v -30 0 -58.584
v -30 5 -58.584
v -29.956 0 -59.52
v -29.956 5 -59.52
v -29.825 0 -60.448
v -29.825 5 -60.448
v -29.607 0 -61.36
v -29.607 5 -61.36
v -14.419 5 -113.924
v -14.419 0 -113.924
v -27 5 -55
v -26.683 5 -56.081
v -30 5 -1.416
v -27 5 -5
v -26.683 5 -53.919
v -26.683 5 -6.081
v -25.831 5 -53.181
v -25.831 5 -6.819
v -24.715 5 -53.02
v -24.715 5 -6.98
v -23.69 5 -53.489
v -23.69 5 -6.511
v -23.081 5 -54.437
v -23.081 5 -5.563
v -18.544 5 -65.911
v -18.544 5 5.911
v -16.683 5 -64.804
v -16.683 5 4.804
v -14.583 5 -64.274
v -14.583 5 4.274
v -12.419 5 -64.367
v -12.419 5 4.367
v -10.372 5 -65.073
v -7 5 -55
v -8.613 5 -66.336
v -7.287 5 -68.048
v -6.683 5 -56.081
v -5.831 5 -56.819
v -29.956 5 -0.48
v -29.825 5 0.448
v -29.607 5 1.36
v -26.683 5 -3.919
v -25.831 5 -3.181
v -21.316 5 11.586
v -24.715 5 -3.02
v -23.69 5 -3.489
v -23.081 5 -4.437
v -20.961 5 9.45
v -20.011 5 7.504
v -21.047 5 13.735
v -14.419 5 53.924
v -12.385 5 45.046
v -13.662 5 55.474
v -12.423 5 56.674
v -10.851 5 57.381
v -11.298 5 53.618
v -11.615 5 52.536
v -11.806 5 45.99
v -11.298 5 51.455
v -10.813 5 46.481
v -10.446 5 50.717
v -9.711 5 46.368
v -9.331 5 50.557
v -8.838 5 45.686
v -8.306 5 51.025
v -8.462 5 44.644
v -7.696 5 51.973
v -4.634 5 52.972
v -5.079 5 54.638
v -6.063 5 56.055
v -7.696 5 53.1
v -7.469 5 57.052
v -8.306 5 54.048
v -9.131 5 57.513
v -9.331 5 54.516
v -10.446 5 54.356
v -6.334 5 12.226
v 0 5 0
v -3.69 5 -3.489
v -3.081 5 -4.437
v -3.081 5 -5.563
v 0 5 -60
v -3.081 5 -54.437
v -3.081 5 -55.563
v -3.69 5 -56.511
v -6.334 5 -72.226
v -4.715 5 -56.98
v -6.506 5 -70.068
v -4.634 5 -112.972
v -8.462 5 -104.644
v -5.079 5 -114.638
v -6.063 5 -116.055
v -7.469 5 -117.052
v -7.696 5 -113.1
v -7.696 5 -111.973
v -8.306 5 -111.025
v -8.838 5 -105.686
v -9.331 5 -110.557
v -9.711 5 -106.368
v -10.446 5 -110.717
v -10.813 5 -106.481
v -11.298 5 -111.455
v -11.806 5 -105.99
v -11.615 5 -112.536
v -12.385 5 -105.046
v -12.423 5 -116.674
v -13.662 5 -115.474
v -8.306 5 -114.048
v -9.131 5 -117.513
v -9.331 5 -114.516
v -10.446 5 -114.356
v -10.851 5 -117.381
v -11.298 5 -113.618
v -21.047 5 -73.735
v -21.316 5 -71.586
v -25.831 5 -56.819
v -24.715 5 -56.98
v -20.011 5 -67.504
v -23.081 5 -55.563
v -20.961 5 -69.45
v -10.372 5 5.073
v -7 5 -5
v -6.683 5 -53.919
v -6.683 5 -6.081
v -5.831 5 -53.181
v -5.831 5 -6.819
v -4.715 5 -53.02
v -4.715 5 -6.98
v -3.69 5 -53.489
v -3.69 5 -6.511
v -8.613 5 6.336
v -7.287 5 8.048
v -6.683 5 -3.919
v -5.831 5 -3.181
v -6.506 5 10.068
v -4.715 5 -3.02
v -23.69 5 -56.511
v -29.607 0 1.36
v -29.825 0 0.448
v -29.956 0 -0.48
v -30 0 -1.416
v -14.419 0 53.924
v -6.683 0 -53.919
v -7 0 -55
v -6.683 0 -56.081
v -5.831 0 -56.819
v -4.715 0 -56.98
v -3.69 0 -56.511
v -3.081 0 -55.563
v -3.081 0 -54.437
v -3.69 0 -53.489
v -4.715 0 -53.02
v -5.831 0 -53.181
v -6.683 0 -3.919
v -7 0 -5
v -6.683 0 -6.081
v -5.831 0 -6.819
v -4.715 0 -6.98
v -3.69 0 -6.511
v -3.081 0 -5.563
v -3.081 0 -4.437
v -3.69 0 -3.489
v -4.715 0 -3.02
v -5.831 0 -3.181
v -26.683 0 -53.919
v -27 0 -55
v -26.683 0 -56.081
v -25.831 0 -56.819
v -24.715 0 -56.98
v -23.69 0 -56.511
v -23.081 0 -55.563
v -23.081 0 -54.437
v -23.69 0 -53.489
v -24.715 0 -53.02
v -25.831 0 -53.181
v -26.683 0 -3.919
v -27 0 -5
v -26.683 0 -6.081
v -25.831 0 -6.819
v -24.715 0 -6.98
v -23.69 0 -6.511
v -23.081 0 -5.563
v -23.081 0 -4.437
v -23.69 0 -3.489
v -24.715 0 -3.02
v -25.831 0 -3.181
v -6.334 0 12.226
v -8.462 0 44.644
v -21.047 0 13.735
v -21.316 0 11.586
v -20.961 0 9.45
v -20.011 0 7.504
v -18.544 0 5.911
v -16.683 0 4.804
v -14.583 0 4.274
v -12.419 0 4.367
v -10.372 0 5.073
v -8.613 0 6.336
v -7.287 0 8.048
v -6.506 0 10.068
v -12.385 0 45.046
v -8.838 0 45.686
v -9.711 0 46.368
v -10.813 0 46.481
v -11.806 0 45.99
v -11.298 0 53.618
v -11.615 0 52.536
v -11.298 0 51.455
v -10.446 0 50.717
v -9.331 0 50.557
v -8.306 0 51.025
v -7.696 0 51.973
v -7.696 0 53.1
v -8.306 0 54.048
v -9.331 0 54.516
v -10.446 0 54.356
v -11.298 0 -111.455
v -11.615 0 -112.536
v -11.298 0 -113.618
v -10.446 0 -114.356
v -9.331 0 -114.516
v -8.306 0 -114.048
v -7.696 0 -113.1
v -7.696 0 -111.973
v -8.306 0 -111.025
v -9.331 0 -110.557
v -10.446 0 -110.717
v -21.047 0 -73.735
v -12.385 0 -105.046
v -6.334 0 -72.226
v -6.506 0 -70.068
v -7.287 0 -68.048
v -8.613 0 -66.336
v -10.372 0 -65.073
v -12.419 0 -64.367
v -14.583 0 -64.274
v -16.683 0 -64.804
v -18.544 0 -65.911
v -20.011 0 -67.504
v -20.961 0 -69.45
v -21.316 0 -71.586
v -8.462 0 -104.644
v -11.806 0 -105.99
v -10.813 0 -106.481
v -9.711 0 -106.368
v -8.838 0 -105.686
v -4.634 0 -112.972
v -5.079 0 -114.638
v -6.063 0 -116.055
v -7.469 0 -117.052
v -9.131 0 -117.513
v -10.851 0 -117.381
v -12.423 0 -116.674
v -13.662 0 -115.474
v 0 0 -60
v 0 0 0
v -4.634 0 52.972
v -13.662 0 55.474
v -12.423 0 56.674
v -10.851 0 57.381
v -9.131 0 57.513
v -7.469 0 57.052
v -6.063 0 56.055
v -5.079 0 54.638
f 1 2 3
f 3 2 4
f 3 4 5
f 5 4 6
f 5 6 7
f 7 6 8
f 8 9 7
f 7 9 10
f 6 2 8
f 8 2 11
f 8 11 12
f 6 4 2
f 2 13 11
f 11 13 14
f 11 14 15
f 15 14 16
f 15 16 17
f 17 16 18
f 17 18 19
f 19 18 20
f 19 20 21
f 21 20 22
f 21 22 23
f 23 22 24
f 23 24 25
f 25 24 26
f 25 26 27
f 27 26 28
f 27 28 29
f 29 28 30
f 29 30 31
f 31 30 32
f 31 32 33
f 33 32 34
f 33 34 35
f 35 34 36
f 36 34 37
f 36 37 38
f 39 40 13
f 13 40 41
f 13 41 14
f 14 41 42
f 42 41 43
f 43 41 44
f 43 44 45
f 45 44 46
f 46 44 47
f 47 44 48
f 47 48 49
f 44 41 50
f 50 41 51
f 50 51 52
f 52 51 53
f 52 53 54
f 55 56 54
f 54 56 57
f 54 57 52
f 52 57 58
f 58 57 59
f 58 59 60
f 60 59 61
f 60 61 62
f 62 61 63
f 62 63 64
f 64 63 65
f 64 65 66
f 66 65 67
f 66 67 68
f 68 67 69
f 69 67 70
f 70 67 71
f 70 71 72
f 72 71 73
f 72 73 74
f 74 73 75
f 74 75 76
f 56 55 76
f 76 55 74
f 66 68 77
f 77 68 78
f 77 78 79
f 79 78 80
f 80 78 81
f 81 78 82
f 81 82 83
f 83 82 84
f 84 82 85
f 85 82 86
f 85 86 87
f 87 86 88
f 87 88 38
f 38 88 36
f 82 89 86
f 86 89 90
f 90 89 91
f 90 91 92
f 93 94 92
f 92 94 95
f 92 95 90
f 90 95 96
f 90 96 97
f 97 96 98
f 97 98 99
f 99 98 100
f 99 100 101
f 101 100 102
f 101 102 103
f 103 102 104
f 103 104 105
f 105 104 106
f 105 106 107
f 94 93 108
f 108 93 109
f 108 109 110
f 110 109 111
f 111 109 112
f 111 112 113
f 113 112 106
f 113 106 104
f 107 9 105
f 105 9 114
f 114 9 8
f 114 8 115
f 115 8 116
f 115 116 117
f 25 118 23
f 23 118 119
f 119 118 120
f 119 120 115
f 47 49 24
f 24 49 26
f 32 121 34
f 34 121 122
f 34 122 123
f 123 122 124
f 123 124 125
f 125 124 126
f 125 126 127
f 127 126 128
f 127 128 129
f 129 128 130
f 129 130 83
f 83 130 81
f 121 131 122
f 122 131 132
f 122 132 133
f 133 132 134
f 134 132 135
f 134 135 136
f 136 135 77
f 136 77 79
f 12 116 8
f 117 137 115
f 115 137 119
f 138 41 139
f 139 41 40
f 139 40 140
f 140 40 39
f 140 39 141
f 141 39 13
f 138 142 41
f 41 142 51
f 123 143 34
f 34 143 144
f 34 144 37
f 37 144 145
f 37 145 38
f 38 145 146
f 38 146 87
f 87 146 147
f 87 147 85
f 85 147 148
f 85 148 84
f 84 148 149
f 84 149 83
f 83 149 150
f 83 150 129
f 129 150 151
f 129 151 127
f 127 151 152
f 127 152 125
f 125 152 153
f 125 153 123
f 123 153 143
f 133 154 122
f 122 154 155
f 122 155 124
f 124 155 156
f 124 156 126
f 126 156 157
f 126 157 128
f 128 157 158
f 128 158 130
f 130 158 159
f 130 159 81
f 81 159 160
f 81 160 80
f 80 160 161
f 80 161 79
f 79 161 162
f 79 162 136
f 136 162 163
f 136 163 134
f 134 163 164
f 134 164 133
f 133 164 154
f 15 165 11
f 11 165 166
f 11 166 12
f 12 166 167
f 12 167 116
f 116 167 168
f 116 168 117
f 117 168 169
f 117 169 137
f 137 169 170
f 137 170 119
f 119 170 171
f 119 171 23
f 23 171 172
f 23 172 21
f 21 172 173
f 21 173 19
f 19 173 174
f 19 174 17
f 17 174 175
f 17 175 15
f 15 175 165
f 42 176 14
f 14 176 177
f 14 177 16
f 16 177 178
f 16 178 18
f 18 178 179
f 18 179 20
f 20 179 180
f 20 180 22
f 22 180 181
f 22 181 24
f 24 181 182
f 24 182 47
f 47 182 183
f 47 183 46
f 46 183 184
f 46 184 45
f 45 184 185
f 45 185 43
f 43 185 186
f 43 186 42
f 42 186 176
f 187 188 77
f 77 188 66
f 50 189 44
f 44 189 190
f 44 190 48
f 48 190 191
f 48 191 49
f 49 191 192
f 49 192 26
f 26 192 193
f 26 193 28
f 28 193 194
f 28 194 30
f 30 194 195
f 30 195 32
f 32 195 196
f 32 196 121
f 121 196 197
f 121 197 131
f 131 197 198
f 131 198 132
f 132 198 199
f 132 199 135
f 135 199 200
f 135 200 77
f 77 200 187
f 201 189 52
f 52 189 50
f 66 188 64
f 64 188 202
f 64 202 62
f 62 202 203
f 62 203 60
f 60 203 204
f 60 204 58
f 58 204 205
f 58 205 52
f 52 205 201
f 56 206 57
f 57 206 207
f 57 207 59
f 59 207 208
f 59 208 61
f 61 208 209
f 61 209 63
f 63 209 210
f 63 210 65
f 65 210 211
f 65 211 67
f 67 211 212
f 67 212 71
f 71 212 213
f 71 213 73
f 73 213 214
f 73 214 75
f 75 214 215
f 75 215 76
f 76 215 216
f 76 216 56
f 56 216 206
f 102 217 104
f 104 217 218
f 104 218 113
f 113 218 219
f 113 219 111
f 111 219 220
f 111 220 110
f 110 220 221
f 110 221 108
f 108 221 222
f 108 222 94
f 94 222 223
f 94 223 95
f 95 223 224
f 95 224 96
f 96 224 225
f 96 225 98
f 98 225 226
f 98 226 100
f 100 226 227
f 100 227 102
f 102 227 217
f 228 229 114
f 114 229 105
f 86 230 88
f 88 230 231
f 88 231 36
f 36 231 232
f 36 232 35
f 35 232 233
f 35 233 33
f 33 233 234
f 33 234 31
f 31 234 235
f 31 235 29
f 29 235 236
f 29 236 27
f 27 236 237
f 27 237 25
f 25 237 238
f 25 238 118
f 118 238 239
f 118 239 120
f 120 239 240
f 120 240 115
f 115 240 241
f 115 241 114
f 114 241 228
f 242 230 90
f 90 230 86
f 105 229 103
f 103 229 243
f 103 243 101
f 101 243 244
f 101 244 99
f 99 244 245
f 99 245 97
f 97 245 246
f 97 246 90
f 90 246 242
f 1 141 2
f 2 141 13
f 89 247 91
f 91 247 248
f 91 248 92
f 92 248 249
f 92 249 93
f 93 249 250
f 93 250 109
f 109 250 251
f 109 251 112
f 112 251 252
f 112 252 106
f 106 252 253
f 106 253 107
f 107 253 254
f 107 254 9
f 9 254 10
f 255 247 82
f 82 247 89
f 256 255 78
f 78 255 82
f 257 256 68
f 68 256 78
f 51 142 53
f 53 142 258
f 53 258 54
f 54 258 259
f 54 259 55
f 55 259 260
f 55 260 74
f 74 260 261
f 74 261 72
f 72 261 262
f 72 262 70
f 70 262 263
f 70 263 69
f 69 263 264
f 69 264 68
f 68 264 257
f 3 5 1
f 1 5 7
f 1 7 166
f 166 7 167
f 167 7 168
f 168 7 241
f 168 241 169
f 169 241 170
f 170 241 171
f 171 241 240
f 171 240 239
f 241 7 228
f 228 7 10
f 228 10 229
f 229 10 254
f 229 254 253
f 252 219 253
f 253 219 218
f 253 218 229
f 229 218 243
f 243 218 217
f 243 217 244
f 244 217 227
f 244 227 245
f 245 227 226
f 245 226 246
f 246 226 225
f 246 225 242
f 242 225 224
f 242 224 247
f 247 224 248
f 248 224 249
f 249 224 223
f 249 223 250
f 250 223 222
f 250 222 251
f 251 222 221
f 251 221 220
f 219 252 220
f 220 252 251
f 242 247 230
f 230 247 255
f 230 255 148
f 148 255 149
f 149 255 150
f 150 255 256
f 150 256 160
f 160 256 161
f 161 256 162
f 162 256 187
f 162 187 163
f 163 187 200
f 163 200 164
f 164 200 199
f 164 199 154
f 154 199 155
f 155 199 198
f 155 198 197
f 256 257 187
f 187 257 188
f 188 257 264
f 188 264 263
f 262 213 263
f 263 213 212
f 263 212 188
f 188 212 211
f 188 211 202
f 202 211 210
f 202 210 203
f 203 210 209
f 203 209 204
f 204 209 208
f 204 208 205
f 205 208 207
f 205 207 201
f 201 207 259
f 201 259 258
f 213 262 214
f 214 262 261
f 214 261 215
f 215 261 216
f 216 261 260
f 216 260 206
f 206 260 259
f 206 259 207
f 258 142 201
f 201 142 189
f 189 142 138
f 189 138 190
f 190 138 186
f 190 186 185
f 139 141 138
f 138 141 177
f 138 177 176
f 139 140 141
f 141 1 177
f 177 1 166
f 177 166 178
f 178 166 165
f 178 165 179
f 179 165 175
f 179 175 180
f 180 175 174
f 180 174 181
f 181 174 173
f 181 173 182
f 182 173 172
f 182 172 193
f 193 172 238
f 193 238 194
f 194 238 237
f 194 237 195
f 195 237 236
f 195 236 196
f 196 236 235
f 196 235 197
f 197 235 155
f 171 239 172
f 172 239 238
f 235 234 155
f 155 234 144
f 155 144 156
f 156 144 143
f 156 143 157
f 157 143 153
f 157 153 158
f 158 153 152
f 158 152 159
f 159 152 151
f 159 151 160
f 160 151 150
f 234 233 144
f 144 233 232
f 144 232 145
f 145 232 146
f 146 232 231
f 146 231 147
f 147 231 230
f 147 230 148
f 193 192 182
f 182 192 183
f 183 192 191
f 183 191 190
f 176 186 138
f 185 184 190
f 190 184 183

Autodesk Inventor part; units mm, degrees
ref_plane "YZ Plane" through (0, 0, 0) normal (1, 0, 0) x (0, 1, 0)
ref_plane "XZ Plane" through (0, 0, 0) normal (0, 1, 0) x (-1, 0, 0)
ref_plane "XY Plane" through (0, 0, 0) normal (0, 0, 1) x (1, 0, 0)
sketch "Boceto1" plane through (0, 0, 0) normal (1, 0, 0) x (0, 1, 0)
  point P0 (0, 0)
sketch "Boceto2" plane through (0, 0, 0) normal (0, 1, 0) x (-1, 0, 0)
  line L0 (0, 0) -> (30, 0)
  line L1 (30, 0) -> (30, -60)
  line L2 (30, -60) -> (0, -60)
  line L3 (0, -60) -> (0, 0)
  circle A0 centre (25, -5) radius 2
  line L4 (30, -30) -> (0, -30) construction
  circle A1 centre (25, -55) radius 2
  line L5 (15, 0) -> (15, -60) construction
  circle A2 centre (5, -5) radius 2
  circle A3 centre (5, -55) radius 2
  line L6 (0, -60) -> (4.6345, -112.9721)
  line L7 (0, -60) -> (53.1744, -60) construction
  line L8 (30, -60) -> (14.4189, -113.9242)
  line L9 (0, 0) -> (4.6345, 52.9721)
  line L10 (30, 0) -> (14.4189, 53.9242)
  arc A4 (14.4189, 53.9242) -> (4.6345, 52.9721) centre (9.6154, 52.5363) ccw
  arc A5 (4.6345, -112.9721) -> (14.4189, -113.9242) centre (9.6154, -112.5363) ccw
  circle A6 centre (9.6154, -112.5363) radius 2
  circle A7 centre (9.6154, 52.5363) radius 2
  line L11 (15, -60) -> (9.1311, -117.5128) construction
  line L12 (1.0267, -71.7351) -> (26.6092, -71.7351) construction
  arc A8 (21.0465, -73.7346) -> (6.3341, -72.2264) centre (13.818, -71.7351) ccw
  arc A9 (8.462, -104.6439) -> (12.3853, -105.0461) centre (10.4577, -104.5129) ccw
  line L13 (21.0465, -73.7346) -> (12.3853, -105.0461)
  line L14 (6.3018, -71.7351) -> (8.462, -104.6439)
  arc A10 (6.3341, 12.2264) -> (21.0465, 13.7346) centre (13.818, 11.7351) ccw
  arc A11 (12.3853, 45.0461) -> (8.462, 44.6439) centre (10.4577, 44.5129) ccw
  line L15 (21.0465, 13.7346) -> (12.3853, 45.0461)
  line L16 (6.3018, 11.7351) -> (8.462, 44.6439)
  point P0 (6.9725, -139.6956)
  point P1 (6.9725, 79.6956)
  dimension "d0" = 30
  dimension "d1" = 60
  dimension "d2" = 4
  dimension "d4" = 5
  dimension "d5" = 5
  dimension "d6" = 80
  dimension "d7" = 85
  dimension "d8" = 5
  dimension "d9" = 4
  dimension "d10" = 4
  dimension "d11" = 15
  dimension "d12" = 4
  dimension "d13" = 0.654
extrude "Extrusión1" add sketch "Boceto2" along normal blind 5
sketch "Boceto3" plane through (0, 5, 0) normal (0, 1, 0) x (1, 0, 0)
  point P0 (0, 0)
fillet "Empalme1" radius 10 2 edges at (-30, 2.5, 0) (-30, 2.5, -60)
